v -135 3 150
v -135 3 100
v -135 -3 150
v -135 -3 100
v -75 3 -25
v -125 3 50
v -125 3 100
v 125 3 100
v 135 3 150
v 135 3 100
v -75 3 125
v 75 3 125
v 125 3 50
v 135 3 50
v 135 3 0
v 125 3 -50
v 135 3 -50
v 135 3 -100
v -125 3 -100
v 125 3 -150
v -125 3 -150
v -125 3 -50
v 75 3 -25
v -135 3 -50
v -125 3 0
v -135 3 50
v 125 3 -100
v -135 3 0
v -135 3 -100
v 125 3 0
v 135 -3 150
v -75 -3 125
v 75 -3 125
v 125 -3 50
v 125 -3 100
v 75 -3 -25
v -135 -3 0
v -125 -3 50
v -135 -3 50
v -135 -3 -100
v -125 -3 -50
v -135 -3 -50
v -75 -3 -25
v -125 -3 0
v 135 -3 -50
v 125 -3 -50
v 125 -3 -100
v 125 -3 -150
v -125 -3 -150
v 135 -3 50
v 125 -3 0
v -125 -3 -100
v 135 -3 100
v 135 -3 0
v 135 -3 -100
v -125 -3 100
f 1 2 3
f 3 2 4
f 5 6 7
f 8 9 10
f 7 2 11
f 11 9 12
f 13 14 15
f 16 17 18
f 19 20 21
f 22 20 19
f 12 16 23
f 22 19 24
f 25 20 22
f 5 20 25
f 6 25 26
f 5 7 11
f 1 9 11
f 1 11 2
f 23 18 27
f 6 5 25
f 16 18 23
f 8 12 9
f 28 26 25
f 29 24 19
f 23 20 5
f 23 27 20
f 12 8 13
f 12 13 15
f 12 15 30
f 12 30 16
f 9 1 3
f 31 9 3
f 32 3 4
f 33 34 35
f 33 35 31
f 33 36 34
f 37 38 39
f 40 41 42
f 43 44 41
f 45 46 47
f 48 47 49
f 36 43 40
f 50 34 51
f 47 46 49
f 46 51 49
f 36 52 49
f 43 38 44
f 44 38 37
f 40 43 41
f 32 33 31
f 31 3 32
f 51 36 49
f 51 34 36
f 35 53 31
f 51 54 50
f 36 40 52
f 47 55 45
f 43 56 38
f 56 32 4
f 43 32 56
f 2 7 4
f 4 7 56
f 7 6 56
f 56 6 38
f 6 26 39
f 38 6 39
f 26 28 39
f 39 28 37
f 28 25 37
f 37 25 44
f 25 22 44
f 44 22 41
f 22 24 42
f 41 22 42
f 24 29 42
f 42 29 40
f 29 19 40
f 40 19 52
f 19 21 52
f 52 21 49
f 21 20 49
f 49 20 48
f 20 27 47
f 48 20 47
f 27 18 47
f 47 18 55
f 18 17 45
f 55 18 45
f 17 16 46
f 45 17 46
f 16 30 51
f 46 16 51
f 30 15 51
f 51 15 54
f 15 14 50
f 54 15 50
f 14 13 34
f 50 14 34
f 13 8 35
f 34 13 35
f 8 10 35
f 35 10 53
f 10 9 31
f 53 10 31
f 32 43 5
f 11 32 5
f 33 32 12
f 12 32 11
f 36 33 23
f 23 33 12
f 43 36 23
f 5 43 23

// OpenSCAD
//Variables de parametrización
h = 300; //alto
w = 250; //ancho
t = 6;	//Grosor

rotate([180,0,0])  
difference(){
union(){

	cube([w,t,h],center=true);//Frente
	anclaje();//Pestañas de anclaje

}
//Ventana
translate([0,0,-50])
	cube([150,60,150],center=true);
}

module anclaje(){
	n = (h/50)/2; 	//Calculo del numero de pestañas
	for (i=[0:n-1]) {  
		translate([w/2,0,-w/2+i*100])  
			cube([20,6,50],center=true);
	
		translate([-w/2,0,-w/2+i*100])  
			cube([20,6,50],center=true);
	}
}
